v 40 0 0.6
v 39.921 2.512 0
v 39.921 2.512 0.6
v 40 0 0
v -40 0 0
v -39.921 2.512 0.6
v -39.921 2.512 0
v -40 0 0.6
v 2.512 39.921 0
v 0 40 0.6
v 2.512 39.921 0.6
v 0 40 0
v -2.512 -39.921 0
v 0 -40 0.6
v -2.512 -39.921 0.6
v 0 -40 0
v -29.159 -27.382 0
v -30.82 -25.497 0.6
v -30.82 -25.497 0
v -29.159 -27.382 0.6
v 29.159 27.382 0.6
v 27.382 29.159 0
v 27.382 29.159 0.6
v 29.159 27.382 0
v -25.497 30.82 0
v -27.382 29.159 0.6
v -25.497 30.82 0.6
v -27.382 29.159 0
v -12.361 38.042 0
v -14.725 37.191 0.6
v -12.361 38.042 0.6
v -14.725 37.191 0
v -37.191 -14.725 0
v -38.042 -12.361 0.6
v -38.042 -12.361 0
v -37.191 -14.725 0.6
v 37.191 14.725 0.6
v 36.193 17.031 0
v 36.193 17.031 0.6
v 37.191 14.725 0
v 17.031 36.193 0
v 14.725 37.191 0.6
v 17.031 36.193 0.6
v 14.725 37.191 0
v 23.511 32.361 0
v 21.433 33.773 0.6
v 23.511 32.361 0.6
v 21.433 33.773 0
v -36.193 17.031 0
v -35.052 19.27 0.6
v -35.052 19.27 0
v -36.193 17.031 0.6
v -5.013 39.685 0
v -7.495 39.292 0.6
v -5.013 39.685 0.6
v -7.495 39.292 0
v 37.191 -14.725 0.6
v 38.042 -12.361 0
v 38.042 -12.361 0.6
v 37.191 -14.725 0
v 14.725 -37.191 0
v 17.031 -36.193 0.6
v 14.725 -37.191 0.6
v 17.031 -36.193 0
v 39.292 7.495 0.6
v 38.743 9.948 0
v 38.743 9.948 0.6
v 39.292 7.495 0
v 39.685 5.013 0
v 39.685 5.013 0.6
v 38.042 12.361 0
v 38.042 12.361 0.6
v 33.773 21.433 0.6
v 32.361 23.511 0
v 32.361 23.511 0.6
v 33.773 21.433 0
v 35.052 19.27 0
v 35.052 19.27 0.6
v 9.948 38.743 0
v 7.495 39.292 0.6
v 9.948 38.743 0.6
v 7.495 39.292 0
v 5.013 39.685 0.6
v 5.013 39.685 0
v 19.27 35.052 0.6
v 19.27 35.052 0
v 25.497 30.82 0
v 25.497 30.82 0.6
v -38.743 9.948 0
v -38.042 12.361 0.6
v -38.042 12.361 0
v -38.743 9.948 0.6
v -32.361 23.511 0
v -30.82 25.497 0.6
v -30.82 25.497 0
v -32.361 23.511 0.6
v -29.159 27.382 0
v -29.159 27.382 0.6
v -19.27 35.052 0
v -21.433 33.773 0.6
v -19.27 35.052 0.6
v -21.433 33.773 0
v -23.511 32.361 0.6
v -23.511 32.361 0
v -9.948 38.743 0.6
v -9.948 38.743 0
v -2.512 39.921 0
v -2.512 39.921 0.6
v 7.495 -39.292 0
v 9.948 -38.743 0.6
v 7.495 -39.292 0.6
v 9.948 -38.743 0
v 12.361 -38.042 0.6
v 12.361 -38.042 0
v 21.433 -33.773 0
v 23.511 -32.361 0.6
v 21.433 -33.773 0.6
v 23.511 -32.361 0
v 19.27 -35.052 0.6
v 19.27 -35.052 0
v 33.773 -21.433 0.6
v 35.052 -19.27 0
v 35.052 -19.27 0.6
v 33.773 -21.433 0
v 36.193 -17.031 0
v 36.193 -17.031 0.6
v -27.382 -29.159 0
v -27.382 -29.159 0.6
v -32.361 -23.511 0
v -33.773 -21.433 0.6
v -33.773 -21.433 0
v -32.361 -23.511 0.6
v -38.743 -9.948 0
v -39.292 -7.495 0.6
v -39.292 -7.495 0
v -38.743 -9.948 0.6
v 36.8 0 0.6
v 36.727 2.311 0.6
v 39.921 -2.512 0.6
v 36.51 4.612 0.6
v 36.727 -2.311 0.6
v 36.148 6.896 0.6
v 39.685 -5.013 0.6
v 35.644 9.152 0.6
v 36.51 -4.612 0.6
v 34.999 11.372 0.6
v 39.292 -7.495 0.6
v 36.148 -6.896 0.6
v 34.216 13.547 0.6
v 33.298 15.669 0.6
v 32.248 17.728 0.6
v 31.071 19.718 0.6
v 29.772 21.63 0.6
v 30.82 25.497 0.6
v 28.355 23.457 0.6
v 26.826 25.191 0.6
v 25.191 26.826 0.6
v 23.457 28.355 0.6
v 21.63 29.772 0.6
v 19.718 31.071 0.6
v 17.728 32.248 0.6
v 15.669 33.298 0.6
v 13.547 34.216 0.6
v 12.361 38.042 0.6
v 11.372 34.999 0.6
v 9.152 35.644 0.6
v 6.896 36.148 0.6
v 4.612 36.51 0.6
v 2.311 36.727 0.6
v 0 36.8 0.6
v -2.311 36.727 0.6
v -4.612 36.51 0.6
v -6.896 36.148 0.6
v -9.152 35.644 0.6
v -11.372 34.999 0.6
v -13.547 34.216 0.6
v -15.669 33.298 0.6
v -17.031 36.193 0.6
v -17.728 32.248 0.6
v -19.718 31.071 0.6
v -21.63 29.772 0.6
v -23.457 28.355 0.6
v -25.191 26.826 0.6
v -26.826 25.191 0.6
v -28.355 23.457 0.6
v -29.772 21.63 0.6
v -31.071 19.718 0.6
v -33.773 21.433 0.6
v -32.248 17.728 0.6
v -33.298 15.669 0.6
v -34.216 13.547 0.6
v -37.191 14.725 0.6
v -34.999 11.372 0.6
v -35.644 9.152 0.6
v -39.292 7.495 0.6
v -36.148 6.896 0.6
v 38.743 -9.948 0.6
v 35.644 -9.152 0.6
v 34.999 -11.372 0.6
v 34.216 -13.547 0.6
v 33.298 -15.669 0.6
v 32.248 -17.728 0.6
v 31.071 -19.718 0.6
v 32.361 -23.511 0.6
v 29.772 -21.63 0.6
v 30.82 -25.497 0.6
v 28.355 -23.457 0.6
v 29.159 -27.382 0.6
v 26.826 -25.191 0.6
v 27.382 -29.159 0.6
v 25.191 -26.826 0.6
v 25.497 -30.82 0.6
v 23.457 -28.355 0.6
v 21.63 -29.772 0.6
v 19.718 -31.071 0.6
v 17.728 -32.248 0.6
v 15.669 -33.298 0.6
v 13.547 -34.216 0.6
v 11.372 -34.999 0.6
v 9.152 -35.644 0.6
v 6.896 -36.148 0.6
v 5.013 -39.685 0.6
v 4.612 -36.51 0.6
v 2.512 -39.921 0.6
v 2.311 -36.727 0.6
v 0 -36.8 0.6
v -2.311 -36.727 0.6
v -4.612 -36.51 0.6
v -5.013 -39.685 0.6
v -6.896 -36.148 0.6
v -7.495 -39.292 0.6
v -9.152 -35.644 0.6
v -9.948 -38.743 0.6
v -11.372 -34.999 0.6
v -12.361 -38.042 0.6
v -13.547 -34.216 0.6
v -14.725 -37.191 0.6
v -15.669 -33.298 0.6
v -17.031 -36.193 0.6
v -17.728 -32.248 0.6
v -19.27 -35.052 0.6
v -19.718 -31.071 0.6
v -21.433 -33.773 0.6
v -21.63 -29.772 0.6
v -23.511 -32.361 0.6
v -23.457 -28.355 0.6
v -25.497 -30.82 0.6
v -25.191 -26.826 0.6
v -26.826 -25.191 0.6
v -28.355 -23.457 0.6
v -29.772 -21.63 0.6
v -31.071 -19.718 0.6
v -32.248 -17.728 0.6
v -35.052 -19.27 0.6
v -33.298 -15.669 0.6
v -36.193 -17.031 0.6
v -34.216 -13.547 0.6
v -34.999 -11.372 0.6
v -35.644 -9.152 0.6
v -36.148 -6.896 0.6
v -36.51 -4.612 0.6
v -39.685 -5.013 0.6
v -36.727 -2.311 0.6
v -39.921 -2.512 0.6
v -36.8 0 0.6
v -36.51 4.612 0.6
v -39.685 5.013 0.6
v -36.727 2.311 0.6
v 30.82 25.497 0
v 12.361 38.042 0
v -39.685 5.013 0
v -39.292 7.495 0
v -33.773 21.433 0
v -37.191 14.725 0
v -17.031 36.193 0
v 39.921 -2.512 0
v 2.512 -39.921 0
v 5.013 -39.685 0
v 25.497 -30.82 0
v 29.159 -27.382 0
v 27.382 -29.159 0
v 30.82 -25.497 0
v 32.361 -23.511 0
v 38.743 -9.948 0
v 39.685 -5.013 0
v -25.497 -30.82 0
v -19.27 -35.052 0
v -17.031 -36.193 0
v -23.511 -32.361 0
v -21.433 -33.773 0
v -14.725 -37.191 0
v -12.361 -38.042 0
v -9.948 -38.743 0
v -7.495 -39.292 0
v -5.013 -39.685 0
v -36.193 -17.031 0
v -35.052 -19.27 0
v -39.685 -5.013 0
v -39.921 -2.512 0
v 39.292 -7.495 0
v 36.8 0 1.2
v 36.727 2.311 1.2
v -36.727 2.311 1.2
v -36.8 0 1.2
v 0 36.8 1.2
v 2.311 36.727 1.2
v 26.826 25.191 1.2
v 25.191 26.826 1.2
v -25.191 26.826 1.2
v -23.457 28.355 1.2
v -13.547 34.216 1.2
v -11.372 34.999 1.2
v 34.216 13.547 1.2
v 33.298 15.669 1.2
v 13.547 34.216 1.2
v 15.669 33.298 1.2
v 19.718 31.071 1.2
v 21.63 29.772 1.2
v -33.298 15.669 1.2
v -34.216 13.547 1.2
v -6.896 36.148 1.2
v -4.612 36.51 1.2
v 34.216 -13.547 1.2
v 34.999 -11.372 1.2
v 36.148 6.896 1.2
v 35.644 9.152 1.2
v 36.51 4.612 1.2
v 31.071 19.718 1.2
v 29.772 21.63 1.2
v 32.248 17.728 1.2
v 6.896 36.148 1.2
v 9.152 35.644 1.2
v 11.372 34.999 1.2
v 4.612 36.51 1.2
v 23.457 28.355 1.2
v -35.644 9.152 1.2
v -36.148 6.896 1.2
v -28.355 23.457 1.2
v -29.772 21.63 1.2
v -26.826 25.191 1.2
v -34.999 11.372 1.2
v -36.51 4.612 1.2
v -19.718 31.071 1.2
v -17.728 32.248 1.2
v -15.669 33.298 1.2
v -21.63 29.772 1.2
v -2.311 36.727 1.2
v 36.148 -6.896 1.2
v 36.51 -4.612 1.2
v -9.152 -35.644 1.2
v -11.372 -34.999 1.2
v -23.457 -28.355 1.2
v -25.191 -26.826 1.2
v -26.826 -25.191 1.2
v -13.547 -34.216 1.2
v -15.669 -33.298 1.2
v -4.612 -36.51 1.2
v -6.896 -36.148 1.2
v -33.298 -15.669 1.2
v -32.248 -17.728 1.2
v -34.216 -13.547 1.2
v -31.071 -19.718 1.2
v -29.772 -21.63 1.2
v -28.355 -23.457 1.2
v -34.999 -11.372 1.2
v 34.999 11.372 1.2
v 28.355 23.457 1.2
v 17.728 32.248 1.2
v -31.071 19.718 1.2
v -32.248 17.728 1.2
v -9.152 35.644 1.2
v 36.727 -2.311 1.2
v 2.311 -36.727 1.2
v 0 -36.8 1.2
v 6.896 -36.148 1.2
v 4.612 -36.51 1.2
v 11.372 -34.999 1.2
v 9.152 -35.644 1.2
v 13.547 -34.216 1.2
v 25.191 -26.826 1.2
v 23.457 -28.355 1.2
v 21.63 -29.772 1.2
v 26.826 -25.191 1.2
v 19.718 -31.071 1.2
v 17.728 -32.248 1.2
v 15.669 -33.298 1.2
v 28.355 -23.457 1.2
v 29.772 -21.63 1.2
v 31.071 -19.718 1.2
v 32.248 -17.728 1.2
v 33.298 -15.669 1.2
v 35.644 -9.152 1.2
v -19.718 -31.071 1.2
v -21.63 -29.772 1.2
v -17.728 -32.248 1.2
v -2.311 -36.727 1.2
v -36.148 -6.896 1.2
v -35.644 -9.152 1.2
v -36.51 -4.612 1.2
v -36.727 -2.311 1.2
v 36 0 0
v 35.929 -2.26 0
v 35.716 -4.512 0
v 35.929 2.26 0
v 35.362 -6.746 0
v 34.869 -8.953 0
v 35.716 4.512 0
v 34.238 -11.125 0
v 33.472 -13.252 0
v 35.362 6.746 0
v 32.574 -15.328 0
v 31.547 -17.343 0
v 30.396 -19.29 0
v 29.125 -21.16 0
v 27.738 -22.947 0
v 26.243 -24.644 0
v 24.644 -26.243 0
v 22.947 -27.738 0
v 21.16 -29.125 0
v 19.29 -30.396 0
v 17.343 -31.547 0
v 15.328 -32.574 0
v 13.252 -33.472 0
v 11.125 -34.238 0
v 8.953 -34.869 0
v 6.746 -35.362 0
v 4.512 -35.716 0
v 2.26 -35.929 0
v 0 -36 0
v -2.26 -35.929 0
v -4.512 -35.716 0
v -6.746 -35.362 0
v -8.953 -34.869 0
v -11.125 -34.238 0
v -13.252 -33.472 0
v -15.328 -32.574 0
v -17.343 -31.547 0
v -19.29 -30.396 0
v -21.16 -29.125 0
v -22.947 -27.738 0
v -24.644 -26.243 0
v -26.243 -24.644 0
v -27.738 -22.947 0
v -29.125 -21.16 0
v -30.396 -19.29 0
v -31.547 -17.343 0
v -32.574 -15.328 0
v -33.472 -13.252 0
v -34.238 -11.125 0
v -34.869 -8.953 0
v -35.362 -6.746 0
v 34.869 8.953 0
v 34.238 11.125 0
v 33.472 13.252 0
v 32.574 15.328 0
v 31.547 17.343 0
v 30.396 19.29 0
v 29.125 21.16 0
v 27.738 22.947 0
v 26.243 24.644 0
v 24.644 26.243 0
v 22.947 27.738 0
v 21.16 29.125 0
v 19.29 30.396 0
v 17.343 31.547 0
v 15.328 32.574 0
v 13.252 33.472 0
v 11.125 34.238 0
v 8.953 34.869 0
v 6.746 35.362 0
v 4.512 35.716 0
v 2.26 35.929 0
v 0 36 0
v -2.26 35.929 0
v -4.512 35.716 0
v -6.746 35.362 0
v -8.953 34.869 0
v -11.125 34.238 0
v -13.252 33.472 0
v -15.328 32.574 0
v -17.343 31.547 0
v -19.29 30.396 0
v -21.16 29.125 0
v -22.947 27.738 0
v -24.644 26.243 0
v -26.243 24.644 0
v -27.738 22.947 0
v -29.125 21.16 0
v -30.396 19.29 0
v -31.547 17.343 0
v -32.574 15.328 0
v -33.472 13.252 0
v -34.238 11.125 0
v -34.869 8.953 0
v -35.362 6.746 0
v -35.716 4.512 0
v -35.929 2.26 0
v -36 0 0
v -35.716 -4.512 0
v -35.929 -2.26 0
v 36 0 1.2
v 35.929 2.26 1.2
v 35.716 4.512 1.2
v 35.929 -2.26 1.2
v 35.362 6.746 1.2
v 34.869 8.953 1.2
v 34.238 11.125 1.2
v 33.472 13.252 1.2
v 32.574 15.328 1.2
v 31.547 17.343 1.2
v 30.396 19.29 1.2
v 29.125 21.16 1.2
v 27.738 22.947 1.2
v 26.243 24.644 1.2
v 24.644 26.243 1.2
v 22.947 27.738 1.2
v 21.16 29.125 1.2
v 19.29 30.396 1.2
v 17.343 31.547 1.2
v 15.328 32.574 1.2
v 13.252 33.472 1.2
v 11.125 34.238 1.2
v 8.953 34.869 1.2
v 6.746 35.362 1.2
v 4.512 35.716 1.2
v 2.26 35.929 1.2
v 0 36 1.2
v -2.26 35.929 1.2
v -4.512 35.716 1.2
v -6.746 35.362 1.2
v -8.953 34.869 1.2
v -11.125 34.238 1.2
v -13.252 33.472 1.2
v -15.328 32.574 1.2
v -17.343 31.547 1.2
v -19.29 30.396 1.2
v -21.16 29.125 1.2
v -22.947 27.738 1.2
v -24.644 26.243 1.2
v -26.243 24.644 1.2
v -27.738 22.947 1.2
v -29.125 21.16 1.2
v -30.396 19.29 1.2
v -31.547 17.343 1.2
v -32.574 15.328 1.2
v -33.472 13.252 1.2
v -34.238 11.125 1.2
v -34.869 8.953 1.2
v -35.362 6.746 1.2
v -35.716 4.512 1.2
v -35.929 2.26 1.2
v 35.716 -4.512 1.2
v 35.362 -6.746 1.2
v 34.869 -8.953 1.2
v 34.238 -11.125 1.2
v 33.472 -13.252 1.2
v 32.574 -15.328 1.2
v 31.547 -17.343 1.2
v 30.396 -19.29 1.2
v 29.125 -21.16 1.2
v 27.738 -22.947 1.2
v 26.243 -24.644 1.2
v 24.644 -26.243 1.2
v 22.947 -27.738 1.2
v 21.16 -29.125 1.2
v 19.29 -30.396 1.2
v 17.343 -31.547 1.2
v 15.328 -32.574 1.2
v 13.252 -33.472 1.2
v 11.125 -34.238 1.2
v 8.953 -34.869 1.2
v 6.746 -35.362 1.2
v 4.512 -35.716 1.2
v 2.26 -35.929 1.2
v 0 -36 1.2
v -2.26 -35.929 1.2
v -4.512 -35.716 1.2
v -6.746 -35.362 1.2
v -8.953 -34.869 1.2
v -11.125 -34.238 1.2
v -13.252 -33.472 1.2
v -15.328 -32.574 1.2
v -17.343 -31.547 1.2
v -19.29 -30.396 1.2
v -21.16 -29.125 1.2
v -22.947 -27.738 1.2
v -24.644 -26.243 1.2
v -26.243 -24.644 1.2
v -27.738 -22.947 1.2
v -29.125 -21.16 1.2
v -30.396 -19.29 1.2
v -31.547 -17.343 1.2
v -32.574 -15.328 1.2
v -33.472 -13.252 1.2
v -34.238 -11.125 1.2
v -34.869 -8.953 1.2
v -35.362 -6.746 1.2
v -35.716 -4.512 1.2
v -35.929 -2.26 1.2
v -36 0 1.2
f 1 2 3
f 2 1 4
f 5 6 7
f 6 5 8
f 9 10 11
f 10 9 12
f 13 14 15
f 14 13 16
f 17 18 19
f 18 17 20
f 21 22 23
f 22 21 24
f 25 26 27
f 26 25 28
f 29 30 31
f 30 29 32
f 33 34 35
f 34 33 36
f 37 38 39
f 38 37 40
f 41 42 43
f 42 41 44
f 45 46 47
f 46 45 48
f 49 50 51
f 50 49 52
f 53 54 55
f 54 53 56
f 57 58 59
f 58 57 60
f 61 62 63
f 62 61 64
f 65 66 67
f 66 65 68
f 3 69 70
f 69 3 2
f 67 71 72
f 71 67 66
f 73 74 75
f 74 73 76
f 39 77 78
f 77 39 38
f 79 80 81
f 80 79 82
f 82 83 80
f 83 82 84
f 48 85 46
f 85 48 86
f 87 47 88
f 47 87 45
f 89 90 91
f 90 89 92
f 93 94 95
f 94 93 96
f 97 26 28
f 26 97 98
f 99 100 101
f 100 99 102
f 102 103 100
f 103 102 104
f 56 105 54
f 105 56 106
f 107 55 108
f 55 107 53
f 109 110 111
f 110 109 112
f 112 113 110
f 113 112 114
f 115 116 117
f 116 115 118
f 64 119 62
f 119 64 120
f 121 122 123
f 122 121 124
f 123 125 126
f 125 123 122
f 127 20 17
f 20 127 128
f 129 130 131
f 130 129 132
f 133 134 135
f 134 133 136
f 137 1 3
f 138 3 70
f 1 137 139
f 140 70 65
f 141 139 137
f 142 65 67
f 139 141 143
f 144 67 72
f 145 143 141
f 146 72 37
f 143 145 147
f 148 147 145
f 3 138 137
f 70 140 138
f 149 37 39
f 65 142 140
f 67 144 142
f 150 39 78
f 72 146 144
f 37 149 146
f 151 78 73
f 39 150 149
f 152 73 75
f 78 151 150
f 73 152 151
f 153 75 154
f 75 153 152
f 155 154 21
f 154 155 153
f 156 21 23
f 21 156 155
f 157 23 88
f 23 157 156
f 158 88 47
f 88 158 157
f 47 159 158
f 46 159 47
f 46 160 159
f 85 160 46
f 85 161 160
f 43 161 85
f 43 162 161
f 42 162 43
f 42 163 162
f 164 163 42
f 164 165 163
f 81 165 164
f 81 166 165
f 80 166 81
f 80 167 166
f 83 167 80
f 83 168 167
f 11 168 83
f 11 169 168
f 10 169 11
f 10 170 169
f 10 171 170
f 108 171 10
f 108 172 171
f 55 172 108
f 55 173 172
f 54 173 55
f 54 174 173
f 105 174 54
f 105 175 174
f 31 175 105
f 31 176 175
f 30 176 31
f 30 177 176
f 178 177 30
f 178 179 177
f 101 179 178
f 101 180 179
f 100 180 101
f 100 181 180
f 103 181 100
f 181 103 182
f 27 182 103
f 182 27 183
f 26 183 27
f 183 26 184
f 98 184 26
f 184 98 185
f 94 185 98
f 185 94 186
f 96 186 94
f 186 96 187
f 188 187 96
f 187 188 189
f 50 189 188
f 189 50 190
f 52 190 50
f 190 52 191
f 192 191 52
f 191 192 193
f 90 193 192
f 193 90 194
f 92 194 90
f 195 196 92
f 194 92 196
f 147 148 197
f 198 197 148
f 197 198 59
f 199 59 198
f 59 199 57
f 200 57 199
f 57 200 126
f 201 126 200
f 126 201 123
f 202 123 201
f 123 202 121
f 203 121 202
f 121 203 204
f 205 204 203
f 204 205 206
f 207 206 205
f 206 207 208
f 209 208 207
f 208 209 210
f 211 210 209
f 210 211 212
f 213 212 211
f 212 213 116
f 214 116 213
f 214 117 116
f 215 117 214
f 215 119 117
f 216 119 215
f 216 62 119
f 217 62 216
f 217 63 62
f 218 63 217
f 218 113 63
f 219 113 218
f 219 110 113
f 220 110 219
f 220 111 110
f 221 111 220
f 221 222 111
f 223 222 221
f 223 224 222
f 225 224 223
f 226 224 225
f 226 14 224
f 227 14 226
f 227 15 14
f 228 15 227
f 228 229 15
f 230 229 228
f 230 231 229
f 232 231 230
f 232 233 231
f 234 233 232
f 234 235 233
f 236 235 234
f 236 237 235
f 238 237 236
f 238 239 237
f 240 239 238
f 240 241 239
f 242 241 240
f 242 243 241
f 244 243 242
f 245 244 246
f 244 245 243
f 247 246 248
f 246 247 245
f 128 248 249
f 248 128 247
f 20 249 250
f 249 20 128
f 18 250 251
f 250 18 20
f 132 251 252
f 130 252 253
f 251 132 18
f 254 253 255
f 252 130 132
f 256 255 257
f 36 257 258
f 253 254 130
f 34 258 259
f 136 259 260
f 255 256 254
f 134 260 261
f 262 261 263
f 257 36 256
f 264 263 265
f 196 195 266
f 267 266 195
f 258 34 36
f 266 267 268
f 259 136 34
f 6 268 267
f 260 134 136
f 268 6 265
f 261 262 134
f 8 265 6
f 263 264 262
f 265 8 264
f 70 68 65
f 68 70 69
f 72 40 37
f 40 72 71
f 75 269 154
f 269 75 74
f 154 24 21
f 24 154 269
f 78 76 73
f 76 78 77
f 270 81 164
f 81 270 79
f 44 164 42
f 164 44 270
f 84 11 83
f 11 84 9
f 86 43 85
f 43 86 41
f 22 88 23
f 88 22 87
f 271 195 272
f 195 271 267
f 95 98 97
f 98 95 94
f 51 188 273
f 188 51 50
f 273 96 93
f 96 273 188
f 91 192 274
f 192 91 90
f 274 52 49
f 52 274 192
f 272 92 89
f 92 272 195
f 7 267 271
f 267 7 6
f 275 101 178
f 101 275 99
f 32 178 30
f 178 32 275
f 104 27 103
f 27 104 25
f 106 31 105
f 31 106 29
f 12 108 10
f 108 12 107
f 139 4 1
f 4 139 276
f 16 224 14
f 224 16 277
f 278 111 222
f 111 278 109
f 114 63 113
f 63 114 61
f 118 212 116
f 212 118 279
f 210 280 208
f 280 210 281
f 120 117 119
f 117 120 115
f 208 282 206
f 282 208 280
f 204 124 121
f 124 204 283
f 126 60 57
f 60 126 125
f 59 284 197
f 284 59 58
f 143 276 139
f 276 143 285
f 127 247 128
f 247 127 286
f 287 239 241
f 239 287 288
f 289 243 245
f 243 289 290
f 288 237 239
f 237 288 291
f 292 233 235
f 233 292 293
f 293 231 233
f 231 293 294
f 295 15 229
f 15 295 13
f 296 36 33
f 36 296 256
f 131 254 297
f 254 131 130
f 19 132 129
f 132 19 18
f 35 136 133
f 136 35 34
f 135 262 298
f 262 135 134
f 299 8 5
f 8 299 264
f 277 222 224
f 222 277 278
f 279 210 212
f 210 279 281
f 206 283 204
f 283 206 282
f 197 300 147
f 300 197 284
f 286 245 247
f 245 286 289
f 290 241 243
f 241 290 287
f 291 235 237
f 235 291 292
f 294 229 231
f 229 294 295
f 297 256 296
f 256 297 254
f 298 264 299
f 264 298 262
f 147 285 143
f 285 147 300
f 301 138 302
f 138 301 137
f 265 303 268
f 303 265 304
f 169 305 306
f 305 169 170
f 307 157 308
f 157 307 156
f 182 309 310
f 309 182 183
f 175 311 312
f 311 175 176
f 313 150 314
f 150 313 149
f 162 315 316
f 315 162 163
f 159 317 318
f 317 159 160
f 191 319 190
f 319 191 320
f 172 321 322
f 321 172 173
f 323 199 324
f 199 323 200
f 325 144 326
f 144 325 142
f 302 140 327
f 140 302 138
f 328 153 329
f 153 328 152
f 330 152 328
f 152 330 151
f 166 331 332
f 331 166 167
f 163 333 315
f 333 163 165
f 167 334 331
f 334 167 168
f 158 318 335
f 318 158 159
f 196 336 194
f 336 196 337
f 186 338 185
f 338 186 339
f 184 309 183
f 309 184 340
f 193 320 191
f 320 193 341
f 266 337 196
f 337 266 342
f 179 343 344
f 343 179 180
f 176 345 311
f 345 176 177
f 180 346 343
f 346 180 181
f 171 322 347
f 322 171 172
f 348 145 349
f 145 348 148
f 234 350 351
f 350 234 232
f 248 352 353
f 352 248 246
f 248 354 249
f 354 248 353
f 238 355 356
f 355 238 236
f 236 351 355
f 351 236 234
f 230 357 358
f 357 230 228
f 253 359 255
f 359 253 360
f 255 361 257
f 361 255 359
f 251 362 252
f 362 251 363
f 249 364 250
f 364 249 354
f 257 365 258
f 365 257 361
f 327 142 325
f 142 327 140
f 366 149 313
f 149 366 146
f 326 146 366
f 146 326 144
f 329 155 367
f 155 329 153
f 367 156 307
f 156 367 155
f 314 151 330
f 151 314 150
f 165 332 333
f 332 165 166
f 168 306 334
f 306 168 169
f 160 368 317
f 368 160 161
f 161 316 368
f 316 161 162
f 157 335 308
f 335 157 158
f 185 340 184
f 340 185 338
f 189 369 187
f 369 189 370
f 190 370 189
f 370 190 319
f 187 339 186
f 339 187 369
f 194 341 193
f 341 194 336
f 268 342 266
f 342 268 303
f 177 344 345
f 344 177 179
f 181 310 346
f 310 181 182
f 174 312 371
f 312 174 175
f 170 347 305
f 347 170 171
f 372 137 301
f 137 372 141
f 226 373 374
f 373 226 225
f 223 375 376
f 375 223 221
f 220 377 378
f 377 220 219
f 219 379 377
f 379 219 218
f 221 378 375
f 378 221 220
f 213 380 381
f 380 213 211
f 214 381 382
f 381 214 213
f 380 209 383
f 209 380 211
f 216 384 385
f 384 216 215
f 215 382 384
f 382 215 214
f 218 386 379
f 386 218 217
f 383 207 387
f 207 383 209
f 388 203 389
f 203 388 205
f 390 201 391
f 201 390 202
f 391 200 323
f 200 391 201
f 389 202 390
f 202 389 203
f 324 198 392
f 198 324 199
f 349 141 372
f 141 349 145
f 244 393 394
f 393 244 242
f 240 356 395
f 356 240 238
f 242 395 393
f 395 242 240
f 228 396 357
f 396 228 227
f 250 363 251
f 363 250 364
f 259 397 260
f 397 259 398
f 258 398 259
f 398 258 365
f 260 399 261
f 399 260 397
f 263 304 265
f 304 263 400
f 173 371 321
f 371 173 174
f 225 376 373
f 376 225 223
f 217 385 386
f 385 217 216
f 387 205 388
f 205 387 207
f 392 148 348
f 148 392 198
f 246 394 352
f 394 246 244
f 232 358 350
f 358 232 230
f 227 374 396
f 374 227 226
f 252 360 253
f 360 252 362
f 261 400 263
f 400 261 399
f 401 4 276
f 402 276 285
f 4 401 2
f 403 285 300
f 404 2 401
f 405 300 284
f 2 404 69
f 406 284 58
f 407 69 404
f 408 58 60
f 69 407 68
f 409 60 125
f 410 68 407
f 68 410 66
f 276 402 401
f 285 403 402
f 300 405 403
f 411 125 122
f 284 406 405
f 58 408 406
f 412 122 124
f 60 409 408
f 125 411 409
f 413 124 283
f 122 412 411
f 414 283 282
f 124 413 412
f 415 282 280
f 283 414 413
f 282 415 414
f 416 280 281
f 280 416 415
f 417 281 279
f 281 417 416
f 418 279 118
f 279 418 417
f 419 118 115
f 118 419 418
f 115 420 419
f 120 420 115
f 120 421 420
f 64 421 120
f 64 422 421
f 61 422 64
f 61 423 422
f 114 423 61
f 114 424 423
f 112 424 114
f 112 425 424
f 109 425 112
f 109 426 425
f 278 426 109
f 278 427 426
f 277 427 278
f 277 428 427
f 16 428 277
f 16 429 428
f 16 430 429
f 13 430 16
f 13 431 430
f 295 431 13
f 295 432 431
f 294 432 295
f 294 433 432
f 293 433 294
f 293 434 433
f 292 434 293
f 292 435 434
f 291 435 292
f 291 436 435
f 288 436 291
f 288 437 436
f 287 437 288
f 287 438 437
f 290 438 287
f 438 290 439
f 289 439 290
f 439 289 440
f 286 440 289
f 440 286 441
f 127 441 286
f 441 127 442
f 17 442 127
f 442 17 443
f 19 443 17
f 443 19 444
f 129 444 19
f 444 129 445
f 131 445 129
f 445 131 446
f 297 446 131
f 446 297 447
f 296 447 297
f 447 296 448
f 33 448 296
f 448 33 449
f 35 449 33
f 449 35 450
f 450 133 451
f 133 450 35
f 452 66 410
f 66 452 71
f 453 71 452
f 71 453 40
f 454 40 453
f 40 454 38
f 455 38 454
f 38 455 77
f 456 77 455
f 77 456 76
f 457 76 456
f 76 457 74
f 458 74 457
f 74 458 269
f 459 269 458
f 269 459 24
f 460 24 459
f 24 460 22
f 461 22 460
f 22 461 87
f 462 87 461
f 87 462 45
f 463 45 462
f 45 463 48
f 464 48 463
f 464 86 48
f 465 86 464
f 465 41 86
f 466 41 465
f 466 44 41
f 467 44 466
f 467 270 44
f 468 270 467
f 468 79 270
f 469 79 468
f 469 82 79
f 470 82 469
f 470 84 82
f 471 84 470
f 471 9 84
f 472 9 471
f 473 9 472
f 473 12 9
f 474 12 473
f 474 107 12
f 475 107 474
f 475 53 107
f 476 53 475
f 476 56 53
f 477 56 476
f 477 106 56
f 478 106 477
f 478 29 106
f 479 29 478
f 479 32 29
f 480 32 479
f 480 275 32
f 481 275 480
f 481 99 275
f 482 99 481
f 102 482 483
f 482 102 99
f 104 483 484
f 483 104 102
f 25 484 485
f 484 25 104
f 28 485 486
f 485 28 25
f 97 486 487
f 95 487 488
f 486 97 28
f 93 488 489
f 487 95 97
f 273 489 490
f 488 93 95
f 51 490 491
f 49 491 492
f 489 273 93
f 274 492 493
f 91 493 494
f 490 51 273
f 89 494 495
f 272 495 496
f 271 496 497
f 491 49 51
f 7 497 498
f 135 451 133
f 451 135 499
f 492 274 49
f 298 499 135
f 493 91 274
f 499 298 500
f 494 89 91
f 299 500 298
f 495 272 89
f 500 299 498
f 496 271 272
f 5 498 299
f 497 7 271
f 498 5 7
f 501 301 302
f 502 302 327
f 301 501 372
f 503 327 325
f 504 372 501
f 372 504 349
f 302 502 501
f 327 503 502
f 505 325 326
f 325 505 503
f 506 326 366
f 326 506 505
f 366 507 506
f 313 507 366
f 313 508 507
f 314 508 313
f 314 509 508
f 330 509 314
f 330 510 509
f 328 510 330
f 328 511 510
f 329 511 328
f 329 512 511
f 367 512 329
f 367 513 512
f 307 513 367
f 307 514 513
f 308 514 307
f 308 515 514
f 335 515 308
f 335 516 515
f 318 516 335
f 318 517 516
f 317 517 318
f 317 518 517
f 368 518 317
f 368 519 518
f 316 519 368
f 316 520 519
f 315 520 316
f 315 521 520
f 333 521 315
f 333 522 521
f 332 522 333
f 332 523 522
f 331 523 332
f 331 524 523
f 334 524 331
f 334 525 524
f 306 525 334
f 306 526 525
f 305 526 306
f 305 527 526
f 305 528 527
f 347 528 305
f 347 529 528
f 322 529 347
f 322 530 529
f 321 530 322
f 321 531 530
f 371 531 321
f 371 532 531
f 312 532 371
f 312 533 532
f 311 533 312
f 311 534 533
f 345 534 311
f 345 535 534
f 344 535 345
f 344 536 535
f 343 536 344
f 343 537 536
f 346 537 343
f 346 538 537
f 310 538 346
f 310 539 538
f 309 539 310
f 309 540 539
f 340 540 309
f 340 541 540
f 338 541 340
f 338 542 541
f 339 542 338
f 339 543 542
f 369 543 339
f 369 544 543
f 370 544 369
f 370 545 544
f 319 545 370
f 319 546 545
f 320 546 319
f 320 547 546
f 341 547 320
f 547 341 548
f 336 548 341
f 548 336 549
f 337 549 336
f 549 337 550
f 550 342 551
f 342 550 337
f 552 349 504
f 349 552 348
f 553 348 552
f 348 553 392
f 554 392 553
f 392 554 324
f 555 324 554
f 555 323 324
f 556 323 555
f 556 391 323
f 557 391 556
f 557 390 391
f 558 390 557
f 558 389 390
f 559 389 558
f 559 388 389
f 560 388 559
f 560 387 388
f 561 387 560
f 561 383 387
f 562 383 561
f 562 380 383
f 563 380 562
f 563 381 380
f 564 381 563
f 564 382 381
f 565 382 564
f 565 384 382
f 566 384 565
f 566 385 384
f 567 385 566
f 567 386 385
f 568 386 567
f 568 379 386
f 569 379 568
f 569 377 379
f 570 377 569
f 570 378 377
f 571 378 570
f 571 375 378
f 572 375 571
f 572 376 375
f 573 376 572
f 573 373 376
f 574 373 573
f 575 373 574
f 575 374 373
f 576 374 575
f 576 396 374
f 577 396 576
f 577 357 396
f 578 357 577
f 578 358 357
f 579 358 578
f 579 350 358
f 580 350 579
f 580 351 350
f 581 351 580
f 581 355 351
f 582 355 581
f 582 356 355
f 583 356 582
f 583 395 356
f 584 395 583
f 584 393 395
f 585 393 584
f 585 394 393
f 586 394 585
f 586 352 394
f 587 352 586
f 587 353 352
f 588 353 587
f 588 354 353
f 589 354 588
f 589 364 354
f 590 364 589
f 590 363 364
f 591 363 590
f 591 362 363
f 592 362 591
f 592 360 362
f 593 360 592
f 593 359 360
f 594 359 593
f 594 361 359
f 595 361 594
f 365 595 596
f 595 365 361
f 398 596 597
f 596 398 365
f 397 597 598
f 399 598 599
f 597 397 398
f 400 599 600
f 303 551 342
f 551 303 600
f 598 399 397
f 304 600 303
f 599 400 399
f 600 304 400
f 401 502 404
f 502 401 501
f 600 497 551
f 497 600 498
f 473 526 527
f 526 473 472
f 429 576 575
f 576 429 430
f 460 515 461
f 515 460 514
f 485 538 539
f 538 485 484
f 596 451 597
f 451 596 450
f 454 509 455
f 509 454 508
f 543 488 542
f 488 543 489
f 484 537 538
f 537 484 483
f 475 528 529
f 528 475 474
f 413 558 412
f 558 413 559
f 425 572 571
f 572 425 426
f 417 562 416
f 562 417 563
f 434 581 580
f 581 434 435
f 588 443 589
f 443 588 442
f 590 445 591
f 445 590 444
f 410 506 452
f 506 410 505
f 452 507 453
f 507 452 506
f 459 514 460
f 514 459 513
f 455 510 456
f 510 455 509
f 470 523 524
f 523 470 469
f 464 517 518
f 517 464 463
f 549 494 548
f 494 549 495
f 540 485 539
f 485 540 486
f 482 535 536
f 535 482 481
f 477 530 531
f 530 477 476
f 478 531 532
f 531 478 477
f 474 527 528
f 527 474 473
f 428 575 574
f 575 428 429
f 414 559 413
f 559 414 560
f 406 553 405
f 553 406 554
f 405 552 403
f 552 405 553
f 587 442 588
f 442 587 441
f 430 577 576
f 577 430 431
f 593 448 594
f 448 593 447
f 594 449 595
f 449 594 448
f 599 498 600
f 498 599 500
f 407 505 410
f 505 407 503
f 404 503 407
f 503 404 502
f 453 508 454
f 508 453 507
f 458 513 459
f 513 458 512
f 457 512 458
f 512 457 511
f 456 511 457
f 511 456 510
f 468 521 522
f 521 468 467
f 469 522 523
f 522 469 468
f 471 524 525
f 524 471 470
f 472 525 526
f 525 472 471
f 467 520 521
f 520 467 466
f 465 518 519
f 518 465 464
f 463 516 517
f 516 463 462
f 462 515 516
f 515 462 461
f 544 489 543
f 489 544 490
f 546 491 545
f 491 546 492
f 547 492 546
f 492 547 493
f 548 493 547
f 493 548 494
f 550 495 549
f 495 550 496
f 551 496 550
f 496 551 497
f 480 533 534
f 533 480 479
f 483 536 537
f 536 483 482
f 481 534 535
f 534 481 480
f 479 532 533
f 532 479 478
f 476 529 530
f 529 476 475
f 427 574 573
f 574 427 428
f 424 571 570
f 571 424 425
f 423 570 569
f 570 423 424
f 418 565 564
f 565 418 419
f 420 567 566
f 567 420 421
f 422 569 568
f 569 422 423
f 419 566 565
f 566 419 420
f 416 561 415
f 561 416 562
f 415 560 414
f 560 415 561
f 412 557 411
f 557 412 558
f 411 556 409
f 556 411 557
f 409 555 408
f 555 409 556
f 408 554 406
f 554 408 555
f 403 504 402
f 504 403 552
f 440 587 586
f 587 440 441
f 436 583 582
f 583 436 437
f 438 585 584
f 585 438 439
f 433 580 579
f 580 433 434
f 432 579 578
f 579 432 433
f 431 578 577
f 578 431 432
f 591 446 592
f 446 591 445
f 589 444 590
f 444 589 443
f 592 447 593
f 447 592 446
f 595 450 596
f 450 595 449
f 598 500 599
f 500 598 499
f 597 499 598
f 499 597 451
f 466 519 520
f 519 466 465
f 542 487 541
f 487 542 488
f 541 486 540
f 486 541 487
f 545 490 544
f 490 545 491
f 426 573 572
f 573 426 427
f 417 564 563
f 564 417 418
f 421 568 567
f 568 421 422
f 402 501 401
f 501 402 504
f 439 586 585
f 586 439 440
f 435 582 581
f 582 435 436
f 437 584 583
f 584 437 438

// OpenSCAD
/* Bang Olufsen speaker gasket
 *
 * Author: @lluismh
 *
 * This work is licensed under a Creative Commons Attribution-ShareAlike 4.0
 * International License.
 */


$fn = 100;

ring_diameter_exterior = 80;
ring_width = 4;
ring_thickness = 0.6;
ring_top_thickness = ring_thickness + 0.6;
ring_top_width = 0.8;

difference() {
  cylinder(h = ring_top_thickness, d = ring_diameter_exterior, center = false);
  cylinder(h = ring_top_thickness, d = ring_diameter_exterior - (ring_width * 2), center = false);

  translate([0, 0, ring_thickness]) {
    difference() {
      cylinder(h = ring_top_thickness, d = ring_diameter_exterior, center = false);
      cylinder(h = ring_top_thickness, d = ring_diameter_exterior - (ring_width * 2) + (ring_top_width * 2), center = false);
    }
  }
}
